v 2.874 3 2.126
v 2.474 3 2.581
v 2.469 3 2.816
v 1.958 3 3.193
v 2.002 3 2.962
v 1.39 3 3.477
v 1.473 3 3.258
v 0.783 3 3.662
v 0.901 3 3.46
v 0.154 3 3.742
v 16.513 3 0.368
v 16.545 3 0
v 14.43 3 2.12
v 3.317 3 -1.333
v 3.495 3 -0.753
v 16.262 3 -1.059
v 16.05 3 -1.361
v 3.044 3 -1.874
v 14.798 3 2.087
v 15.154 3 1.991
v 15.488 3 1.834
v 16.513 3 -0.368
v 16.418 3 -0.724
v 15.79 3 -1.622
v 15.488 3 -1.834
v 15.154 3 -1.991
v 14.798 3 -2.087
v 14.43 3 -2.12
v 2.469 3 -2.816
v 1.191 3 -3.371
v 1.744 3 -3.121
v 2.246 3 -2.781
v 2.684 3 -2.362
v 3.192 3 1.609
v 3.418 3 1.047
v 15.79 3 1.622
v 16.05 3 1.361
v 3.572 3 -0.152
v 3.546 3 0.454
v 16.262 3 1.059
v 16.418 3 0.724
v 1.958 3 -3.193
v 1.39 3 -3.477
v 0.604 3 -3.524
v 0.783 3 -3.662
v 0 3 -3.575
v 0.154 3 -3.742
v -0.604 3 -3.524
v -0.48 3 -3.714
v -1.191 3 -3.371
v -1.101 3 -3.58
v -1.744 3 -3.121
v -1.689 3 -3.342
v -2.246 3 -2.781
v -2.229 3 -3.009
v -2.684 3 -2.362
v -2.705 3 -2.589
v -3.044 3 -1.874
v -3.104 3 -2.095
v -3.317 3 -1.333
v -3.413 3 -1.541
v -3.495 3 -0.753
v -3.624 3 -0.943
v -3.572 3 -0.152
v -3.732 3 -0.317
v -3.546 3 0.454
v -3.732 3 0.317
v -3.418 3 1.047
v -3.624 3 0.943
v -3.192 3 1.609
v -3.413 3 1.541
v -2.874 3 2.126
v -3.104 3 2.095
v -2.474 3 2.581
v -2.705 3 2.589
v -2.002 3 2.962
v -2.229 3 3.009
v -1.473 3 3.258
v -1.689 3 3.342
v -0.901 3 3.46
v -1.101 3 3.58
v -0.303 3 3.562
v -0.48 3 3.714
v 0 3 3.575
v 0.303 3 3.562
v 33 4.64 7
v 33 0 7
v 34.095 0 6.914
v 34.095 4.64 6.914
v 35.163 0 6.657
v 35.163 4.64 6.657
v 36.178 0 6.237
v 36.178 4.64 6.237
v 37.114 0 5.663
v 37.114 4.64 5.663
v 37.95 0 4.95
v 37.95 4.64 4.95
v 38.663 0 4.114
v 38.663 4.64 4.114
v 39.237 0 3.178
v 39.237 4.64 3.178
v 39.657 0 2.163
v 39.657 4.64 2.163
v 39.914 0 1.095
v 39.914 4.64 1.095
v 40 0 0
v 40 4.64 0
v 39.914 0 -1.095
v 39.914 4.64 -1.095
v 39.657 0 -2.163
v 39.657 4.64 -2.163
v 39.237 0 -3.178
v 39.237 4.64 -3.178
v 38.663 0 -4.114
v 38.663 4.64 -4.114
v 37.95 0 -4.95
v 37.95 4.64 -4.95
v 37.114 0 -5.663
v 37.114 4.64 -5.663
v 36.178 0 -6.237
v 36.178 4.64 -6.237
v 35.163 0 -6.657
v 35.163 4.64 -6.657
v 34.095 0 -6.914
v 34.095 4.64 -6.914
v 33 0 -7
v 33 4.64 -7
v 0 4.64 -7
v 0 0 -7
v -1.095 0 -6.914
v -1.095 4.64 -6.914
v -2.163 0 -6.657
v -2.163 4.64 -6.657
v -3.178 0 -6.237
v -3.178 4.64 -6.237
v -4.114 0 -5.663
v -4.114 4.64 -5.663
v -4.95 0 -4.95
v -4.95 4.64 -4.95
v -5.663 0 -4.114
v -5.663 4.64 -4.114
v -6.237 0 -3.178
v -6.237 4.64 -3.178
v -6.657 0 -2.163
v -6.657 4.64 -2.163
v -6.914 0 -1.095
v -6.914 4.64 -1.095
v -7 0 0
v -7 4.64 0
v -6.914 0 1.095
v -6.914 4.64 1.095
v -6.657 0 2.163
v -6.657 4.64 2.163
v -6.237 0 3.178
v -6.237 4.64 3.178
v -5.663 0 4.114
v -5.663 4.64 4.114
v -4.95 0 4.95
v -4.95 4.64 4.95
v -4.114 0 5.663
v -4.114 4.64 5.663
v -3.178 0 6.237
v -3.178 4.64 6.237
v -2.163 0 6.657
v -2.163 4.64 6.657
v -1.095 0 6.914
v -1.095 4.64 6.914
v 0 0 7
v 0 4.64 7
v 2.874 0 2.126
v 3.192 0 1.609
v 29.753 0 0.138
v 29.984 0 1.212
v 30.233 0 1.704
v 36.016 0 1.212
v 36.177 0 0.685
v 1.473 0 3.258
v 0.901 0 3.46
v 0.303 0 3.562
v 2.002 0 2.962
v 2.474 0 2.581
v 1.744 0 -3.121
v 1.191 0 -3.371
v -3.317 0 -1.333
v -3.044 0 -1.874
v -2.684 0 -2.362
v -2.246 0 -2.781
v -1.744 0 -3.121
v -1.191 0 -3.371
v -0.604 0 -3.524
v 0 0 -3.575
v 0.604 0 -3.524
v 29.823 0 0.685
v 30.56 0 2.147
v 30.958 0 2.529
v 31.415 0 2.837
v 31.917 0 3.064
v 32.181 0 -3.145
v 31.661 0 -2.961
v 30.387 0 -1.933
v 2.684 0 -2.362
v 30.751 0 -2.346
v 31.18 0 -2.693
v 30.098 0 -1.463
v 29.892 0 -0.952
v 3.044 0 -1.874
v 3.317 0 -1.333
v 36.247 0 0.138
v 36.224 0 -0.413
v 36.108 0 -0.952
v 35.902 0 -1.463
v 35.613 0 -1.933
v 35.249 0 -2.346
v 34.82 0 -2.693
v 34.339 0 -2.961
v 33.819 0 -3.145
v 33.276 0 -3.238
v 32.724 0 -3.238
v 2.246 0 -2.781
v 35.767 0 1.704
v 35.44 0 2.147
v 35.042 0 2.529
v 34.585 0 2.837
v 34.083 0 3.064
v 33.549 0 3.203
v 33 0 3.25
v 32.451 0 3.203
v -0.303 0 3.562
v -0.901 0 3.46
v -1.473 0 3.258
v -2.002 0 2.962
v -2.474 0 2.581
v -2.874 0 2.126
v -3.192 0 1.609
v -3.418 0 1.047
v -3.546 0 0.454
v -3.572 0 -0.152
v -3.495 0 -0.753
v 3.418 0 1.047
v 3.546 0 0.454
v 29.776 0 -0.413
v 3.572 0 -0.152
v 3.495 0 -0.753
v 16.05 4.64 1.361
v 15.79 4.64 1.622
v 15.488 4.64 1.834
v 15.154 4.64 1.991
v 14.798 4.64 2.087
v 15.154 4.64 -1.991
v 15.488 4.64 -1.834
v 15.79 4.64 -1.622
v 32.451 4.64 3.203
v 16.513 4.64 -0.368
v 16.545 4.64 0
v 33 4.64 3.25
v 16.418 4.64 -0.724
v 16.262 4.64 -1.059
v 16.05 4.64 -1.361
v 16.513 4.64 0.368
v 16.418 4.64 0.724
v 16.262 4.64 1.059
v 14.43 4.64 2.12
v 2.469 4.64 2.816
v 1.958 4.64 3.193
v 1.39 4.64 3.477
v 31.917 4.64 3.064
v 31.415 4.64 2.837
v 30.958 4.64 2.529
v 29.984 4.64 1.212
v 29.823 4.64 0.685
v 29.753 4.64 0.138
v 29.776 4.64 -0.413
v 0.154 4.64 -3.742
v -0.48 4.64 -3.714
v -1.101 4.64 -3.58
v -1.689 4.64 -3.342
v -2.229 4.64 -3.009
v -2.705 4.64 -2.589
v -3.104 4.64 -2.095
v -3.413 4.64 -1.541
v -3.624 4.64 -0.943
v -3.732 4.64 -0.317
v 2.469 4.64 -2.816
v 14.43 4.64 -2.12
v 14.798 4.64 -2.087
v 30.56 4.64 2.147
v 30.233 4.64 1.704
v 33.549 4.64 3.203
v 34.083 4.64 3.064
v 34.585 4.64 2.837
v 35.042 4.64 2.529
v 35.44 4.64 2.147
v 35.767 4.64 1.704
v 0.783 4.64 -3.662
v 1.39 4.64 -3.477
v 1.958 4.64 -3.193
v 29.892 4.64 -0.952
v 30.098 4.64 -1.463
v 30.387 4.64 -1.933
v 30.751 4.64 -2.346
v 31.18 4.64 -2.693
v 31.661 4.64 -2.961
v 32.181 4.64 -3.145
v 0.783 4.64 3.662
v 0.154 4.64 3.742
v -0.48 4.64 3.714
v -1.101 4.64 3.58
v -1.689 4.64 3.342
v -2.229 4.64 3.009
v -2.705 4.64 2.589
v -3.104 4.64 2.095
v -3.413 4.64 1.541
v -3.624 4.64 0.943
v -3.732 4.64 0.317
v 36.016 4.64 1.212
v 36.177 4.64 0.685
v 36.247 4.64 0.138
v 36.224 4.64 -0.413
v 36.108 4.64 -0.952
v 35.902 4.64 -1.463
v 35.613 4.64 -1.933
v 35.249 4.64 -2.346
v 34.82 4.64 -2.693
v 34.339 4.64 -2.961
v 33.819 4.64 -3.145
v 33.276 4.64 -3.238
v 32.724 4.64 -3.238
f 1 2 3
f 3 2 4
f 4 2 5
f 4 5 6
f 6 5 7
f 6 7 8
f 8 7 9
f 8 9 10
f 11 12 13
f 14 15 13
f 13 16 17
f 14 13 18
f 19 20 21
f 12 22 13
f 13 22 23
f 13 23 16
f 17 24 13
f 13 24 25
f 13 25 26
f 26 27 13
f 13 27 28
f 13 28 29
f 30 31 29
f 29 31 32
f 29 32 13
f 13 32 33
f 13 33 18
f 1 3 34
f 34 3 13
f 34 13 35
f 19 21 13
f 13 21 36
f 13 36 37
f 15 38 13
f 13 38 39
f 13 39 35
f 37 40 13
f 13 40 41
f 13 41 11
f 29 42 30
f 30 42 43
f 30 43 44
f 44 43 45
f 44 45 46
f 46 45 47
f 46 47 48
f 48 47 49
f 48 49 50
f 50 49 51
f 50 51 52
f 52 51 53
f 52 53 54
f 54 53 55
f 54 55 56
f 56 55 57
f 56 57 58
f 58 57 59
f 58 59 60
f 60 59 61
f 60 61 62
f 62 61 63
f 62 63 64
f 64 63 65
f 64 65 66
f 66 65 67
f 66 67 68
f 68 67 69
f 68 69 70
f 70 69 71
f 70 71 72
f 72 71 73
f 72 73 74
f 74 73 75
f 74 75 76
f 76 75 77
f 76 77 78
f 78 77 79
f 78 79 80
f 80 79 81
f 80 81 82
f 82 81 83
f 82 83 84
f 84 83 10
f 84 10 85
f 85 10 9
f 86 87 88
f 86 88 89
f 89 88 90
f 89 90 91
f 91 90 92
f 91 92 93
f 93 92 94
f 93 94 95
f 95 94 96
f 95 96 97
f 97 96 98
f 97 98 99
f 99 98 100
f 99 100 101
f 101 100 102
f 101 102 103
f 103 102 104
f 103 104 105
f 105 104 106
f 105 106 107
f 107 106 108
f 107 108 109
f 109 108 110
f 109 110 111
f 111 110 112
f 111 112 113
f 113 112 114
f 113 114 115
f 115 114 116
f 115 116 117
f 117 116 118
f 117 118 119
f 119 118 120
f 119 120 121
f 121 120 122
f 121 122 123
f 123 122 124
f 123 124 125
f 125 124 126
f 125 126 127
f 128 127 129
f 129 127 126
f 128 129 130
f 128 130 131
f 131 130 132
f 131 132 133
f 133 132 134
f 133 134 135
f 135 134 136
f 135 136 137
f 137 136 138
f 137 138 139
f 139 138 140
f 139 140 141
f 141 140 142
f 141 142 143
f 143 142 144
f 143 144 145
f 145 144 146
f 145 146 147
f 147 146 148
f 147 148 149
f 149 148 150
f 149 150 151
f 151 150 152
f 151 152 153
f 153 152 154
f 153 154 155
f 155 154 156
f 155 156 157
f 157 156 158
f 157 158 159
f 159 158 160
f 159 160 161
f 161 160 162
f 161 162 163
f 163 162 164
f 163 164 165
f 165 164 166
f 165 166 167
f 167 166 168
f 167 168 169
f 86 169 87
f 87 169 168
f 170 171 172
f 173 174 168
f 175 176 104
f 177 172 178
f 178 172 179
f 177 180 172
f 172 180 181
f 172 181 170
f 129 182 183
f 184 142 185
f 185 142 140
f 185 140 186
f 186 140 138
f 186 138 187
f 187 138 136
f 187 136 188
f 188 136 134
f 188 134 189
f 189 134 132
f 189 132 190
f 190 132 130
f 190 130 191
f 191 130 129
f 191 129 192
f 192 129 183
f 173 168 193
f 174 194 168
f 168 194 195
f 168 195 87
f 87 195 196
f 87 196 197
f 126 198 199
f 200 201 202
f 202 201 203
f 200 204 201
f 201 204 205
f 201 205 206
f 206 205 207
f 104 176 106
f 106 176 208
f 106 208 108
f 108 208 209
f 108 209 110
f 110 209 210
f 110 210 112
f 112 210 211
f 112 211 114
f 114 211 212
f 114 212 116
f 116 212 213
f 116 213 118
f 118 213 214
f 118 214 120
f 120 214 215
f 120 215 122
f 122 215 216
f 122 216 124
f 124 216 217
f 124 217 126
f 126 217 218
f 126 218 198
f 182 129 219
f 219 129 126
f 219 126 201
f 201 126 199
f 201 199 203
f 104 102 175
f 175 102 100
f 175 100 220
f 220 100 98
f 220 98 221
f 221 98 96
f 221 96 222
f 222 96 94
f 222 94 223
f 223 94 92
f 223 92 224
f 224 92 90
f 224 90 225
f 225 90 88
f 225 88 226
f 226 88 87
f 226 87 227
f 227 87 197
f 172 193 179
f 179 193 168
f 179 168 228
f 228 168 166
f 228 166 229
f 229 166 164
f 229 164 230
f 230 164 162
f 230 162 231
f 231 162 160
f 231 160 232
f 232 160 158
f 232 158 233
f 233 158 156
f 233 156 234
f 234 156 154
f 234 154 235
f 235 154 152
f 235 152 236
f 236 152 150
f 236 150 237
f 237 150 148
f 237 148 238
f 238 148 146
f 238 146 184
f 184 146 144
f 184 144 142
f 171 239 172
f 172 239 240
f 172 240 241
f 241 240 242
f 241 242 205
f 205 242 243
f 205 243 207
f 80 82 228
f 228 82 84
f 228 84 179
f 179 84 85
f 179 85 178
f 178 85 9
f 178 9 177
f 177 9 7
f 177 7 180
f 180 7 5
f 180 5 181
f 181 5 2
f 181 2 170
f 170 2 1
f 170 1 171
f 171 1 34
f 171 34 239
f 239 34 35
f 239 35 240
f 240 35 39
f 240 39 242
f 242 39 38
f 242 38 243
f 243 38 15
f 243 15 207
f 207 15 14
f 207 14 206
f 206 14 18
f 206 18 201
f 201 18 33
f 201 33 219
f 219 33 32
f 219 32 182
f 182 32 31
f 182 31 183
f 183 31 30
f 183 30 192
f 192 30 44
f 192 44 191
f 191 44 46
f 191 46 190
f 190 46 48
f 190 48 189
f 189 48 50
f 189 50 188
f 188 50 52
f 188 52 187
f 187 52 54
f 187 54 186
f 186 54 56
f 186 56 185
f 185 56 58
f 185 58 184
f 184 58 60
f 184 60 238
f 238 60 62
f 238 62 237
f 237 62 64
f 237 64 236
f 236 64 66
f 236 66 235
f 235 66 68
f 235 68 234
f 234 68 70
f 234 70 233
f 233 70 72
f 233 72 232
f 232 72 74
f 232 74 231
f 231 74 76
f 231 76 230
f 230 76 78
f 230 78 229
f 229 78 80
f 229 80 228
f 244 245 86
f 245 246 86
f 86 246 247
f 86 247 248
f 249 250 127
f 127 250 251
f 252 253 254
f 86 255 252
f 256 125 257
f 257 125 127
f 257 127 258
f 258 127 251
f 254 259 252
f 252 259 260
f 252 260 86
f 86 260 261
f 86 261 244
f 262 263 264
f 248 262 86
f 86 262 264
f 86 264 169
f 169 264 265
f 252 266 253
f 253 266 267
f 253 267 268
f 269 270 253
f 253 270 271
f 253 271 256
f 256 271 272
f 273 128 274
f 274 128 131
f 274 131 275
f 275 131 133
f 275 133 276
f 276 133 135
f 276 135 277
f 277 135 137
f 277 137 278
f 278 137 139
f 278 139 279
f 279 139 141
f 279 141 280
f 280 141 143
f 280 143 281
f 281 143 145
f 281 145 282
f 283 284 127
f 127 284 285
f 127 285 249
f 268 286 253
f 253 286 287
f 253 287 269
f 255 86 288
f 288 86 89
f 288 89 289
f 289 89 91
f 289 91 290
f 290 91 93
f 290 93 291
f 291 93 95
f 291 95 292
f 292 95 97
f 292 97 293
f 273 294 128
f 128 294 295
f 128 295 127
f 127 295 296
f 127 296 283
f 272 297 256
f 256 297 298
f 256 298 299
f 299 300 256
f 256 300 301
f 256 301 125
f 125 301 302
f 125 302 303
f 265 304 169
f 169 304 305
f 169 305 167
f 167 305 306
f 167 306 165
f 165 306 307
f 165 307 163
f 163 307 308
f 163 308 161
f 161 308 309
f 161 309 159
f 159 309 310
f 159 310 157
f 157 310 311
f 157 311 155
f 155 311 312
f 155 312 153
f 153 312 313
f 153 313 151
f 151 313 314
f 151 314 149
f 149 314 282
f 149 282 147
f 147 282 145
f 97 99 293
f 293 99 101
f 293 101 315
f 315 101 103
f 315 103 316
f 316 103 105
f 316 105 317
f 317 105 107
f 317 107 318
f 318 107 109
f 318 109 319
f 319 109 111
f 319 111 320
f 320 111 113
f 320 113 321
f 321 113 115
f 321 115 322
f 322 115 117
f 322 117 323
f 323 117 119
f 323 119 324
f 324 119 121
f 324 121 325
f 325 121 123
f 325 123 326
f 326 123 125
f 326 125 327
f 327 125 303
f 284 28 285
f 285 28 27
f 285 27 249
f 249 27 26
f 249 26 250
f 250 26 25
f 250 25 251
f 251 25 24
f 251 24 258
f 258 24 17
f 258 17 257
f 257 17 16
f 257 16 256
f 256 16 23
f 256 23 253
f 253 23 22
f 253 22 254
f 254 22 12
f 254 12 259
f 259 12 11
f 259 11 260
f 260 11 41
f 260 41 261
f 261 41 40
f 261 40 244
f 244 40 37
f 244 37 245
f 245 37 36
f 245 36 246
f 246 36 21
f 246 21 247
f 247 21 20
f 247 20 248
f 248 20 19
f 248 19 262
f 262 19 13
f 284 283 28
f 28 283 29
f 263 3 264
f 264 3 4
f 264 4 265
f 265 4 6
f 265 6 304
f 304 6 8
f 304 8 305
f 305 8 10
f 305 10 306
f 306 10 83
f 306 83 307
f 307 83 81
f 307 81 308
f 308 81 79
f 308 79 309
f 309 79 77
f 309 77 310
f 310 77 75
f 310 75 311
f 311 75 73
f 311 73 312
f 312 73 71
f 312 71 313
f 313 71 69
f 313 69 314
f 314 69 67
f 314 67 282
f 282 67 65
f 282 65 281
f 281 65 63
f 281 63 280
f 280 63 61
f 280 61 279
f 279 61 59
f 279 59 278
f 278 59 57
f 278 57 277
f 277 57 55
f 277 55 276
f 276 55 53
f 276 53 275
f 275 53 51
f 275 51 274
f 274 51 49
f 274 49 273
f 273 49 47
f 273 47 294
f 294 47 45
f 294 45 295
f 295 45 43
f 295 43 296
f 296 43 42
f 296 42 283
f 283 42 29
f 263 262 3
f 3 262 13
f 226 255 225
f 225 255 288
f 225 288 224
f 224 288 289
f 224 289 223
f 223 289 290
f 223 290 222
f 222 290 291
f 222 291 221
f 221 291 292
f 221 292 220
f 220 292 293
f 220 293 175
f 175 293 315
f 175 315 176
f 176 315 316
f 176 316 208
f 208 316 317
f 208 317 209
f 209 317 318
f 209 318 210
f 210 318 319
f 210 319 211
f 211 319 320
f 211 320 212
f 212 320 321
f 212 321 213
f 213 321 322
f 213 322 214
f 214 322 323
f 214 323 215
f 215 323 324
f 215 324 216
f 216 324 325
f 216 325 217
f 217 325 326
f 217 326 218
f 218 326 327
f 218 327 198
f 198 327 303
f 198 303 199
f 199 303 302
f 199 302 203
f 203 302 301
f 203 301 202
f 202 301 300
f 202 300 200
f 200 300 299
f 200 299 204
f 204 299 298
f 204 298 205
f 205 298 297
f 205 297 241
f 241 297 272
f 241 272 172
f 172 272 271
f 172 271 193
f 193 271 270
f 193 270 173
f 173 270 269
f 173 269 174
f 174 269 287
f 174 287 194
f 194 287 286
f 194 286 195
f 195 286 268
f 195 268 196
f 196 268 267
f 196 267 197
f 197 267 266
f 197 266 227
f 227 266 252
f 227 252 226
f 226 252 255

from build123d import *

# Parameters (mm, degrees)
BOSS_EXTRUDE1_DEPTH = 3
SKETCH2_R           = 3.575
CUT_EXTRUDE1_DEPTH  = 3.95
BOSS_EXTRUDE2_DEPTH = 1.64
SKETCH4_R           = 3.25
CUT_EXTRUDE2_DEPTH  = 4.64


with BuildPart() as part:
    # Sketch1 → Boss-Extrude1 (new body)
    with BuildSketch(Plane(origin=(0, 0, 0), x_dir=(1, 0, 0), z_dir=(0, 1, 0))):
        with BuildLine():
            Line((0, 7), (33, 7))
            ThreePointArc((33, 7), (40, 0), (33, -7))
            Line((33, -7), (0, -7))
            ThreePointArc((0, -7), (-7, 0), (0, 7))
        make_face()
    extrude(amount=BOSS_EXTRUDE1_DEPTH)

    # Sketch2 → Cut-Extrude1 (cut)
    with BuildSketch(Plane.XZ):
        with Locations(Location((0, 0, 0), (0, 0, 270))):
            Circle(SKETCH2_R)
    extrude(amount=-CUT_EXTRUDE1_DEPTH, mode=Mode.SUBTRACT)

    # Sketch3 → Boss-Extrude2 (add)
    with BuildSketch(Plane(origin=(0, 3, 0), x_dir=(1, 0, 0), z_dir=(0, 1, 0))):
        with BuildLine():
            Line((0, -7), (33, -7))
            ThreePointArc((33, -7), (40, 0), (33, 7))
            Line((33, 7), (0, 7))
            ThreePointArc((0, 7), (-7, 0), (0, -7))
        make_face()
        with BuildLine():
            Line((14.43004688, 2.119993993), (2.468524523, 2.816276208))
            ThreePointArc((2.468524523, 2.816276208), (-3.745, 0), (2.468524523, -2.816276208))
            Line((2.468524523, -2.816276208), (14.43004688, -2.119993993))
            ThreePointArc((14.43004688, -2.119993993), (16.545, 0), (14.43004688, 2.119993993))
        make_face(mode=Mode.SUBTRACT)
    extrude(amount=BOSS_EXTRUDE2_DEPTH)

    # Sketch4 → Cut-Extrude2 (cut)
    with BuildSketch(Plane(origin=(0, 4.64, 0), x_dir=(1, 0, 0), z_dir=(0, 1, 0))):
        with Locations(Location((33, 0, 0), (0, 0, 270))):
            Circle(SKETCH4_R)
    extrude(amount=-CUT_EXTRUDE2_DEPTH, mode=Mode.SUBTRACT)


solid = part.part
